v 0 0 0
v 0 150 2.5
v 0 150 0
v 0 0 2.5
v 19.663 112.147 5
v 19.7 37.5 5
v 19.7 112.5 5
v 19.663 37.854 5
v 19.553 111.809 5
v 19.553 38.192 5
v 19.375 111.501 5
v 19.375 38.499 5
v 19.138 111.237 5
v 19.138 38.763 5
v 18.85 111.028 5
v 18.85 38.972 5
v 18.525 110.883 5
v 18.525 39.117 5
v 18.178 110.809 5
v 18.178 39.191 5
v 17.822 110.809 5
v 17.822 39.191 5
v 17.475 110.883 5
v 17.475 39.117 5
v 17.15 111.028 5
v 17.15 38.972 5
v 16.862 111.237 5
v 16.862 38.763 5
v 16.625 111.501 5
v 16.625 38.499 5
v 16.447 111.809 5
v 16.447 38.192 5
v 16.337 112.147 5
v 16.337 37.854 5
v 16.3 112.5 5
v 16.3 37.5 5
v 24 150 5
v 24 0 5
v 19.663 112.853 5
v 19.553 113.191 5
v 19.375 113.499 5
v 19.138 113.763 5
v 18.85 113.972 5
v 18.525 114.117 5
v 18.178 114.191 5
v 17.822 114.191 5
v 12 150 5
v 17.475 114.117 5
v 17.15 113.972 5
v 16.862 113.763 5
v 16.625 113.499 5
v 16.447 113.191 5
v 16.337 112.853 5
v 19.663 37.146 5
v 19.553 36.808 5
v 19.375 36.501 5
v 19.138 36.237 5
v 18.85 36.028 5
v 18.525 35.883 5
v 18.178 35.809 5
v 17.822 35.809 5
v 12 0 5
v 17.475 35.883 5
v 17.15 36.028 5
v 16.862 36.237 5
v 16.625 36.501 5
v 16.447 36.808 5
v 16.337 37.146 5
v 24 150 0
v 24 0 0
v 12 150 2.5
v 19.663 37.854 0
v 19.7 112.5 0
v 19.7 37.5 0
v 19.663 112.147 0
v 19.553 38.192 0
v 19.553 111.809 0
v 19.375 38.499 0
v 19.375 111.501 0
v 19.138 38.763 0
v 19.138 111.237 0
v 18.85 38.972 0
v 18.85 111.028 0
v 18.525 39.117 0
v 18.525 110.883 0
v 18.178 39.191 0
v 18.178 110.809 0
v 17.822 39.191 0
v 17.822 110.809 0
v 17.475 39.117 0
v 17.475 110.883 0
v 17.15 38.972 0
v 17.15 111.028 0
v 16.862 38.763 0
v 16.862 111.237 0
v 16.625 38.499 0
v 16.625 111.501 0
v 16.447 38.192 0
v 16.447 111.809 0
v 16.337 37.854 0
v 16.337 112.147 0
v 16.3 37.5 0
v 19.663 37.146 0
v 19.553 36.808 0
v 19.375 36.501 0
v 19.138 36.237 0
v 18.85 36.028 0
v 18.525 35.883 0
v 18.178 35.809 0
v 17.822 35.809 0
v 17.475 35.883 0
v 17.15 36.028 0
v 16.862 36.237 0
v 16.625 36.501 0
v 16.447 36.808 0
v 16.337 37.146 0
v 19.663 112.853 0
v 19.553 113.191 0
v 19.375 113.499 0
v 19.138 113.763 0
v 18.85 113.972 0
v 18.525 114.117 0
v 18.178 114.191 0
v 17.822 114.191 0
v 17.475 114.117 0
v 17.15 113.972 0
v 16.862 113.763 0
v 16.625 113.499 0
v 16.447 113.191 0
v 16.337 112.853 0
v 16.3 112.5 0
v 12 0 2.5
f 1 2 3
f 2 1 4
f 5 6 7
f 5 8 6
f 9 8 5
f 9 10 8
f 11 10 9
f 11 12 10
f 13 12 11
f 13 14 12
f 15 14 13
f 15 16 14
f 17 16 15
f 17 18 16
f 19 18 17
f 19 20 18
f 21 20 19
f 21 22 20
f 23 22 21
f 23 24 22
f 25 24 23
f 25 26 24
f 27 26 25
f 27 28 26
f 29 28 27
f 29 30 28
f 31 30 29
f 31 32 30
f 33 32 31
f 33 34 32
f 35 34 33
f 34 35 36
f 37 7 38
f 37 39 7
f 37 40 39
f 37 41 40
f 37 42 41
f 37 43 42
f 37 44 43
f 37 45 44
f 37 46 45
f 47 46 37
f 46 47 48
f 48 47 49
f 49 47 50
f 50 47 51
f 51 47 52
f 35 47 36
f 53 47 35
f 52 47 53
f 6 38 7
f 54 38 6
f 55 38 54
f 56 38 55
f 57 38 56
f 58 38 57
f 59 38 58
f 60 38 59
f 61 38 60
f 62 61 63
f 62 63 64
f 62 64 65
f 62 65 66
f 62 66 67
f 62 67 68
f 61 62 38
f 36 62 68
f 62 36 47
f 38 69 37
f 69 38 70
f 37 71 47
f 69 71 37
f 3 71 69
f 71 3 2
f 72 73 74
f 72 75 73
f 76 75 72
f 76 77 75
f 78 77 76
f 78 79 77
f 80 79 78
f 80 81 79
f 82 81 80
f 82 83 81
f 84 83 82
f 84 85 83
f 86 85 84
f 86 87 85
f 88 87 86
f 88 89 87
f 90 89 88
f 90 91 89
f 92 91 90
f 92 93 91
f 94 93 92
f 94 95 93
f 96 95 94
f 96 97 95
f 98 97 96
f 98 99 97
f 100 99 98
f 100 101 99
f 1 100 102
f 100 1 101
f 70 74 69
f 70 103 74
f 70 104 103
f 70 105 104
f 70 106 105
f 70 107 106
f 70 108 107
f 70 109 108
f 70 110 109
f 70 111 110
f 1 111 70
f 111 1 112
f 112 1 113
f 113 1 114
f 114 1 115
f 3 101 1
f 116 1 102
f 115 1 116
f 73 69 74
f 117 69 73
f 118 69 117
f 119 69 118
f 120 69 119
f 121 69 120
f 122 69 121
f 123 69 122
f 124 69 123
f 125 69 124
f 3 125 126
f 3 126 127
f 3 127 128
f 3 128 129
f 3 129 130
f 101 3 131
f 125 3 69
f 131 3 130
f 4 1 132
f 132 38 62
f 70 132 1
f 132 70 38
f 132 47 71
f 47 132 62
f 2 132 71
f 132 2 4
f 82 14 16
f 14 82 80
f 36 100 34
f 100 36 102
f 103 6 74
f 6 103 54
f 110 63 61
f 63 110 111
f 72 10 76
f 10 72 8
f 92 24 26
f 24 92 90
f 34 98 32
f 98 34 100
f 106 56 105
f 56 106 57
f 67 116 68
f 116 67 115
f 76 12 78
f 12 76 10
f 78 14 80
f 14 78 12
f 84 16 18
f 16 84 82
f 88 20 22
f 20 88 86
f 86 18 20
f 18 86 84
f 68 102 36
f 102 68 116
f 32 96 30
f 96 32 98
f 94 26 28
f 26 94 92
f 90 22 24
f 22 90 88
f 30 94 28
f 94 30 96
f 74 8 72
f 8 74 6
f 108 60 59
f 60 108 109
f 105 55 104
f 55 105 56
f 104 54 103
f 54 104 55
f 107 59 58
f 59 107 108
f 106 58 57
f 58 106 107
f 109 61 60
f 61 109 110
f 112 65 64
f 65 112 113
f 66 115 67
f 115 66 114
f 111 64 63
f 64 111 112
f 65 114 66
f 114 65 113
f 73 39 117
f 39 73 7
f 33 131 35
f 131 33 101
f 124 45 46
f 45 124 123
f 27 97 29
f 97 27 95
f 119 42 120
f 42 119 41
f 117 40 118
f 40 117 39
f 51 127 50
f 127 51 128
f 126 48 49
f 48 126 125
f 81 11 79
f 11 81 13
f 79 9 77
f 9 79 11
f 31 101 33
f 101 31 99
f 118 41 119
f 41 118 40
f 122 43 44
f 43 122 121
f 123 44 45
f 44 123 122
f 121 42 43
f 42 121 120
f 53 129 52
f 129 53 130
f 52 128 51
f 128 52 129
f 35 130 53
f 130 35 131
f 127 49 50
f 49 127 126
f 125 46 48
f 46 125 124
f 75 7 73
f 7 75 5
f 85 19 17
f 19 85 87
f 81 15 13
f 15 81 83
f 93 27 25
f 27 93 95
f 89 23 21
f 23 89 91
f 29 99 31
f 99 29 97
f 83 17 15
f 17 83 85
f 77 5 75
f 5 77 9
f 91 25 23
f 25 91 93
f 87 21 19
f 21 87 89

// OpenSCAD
w = 24;
d = 150;
h = 5;

cutW = 12;
cutH = 2.5;

holeDiam = 3.4;

difference() {
    cube([w, d, h ]);
    translate([-1, -1, h - cutH])
        cube([cutW + 1, d + 2, cutH + 1]);
    translate([3 * w / 4, d / 4, -1])
        cylinder(d = holeDiam, h = h + 2, $fn = 30);
//    translate([3 * w / 4, d / 2, -1])
//        cylinder(d = holeDiam, h = h + 2, $fn = 30);
    translate([3 * w / 4, 3 * d / 4, -1])
        cylinder(d = holeDiam, h = h + 2, $fn = 30);
}
